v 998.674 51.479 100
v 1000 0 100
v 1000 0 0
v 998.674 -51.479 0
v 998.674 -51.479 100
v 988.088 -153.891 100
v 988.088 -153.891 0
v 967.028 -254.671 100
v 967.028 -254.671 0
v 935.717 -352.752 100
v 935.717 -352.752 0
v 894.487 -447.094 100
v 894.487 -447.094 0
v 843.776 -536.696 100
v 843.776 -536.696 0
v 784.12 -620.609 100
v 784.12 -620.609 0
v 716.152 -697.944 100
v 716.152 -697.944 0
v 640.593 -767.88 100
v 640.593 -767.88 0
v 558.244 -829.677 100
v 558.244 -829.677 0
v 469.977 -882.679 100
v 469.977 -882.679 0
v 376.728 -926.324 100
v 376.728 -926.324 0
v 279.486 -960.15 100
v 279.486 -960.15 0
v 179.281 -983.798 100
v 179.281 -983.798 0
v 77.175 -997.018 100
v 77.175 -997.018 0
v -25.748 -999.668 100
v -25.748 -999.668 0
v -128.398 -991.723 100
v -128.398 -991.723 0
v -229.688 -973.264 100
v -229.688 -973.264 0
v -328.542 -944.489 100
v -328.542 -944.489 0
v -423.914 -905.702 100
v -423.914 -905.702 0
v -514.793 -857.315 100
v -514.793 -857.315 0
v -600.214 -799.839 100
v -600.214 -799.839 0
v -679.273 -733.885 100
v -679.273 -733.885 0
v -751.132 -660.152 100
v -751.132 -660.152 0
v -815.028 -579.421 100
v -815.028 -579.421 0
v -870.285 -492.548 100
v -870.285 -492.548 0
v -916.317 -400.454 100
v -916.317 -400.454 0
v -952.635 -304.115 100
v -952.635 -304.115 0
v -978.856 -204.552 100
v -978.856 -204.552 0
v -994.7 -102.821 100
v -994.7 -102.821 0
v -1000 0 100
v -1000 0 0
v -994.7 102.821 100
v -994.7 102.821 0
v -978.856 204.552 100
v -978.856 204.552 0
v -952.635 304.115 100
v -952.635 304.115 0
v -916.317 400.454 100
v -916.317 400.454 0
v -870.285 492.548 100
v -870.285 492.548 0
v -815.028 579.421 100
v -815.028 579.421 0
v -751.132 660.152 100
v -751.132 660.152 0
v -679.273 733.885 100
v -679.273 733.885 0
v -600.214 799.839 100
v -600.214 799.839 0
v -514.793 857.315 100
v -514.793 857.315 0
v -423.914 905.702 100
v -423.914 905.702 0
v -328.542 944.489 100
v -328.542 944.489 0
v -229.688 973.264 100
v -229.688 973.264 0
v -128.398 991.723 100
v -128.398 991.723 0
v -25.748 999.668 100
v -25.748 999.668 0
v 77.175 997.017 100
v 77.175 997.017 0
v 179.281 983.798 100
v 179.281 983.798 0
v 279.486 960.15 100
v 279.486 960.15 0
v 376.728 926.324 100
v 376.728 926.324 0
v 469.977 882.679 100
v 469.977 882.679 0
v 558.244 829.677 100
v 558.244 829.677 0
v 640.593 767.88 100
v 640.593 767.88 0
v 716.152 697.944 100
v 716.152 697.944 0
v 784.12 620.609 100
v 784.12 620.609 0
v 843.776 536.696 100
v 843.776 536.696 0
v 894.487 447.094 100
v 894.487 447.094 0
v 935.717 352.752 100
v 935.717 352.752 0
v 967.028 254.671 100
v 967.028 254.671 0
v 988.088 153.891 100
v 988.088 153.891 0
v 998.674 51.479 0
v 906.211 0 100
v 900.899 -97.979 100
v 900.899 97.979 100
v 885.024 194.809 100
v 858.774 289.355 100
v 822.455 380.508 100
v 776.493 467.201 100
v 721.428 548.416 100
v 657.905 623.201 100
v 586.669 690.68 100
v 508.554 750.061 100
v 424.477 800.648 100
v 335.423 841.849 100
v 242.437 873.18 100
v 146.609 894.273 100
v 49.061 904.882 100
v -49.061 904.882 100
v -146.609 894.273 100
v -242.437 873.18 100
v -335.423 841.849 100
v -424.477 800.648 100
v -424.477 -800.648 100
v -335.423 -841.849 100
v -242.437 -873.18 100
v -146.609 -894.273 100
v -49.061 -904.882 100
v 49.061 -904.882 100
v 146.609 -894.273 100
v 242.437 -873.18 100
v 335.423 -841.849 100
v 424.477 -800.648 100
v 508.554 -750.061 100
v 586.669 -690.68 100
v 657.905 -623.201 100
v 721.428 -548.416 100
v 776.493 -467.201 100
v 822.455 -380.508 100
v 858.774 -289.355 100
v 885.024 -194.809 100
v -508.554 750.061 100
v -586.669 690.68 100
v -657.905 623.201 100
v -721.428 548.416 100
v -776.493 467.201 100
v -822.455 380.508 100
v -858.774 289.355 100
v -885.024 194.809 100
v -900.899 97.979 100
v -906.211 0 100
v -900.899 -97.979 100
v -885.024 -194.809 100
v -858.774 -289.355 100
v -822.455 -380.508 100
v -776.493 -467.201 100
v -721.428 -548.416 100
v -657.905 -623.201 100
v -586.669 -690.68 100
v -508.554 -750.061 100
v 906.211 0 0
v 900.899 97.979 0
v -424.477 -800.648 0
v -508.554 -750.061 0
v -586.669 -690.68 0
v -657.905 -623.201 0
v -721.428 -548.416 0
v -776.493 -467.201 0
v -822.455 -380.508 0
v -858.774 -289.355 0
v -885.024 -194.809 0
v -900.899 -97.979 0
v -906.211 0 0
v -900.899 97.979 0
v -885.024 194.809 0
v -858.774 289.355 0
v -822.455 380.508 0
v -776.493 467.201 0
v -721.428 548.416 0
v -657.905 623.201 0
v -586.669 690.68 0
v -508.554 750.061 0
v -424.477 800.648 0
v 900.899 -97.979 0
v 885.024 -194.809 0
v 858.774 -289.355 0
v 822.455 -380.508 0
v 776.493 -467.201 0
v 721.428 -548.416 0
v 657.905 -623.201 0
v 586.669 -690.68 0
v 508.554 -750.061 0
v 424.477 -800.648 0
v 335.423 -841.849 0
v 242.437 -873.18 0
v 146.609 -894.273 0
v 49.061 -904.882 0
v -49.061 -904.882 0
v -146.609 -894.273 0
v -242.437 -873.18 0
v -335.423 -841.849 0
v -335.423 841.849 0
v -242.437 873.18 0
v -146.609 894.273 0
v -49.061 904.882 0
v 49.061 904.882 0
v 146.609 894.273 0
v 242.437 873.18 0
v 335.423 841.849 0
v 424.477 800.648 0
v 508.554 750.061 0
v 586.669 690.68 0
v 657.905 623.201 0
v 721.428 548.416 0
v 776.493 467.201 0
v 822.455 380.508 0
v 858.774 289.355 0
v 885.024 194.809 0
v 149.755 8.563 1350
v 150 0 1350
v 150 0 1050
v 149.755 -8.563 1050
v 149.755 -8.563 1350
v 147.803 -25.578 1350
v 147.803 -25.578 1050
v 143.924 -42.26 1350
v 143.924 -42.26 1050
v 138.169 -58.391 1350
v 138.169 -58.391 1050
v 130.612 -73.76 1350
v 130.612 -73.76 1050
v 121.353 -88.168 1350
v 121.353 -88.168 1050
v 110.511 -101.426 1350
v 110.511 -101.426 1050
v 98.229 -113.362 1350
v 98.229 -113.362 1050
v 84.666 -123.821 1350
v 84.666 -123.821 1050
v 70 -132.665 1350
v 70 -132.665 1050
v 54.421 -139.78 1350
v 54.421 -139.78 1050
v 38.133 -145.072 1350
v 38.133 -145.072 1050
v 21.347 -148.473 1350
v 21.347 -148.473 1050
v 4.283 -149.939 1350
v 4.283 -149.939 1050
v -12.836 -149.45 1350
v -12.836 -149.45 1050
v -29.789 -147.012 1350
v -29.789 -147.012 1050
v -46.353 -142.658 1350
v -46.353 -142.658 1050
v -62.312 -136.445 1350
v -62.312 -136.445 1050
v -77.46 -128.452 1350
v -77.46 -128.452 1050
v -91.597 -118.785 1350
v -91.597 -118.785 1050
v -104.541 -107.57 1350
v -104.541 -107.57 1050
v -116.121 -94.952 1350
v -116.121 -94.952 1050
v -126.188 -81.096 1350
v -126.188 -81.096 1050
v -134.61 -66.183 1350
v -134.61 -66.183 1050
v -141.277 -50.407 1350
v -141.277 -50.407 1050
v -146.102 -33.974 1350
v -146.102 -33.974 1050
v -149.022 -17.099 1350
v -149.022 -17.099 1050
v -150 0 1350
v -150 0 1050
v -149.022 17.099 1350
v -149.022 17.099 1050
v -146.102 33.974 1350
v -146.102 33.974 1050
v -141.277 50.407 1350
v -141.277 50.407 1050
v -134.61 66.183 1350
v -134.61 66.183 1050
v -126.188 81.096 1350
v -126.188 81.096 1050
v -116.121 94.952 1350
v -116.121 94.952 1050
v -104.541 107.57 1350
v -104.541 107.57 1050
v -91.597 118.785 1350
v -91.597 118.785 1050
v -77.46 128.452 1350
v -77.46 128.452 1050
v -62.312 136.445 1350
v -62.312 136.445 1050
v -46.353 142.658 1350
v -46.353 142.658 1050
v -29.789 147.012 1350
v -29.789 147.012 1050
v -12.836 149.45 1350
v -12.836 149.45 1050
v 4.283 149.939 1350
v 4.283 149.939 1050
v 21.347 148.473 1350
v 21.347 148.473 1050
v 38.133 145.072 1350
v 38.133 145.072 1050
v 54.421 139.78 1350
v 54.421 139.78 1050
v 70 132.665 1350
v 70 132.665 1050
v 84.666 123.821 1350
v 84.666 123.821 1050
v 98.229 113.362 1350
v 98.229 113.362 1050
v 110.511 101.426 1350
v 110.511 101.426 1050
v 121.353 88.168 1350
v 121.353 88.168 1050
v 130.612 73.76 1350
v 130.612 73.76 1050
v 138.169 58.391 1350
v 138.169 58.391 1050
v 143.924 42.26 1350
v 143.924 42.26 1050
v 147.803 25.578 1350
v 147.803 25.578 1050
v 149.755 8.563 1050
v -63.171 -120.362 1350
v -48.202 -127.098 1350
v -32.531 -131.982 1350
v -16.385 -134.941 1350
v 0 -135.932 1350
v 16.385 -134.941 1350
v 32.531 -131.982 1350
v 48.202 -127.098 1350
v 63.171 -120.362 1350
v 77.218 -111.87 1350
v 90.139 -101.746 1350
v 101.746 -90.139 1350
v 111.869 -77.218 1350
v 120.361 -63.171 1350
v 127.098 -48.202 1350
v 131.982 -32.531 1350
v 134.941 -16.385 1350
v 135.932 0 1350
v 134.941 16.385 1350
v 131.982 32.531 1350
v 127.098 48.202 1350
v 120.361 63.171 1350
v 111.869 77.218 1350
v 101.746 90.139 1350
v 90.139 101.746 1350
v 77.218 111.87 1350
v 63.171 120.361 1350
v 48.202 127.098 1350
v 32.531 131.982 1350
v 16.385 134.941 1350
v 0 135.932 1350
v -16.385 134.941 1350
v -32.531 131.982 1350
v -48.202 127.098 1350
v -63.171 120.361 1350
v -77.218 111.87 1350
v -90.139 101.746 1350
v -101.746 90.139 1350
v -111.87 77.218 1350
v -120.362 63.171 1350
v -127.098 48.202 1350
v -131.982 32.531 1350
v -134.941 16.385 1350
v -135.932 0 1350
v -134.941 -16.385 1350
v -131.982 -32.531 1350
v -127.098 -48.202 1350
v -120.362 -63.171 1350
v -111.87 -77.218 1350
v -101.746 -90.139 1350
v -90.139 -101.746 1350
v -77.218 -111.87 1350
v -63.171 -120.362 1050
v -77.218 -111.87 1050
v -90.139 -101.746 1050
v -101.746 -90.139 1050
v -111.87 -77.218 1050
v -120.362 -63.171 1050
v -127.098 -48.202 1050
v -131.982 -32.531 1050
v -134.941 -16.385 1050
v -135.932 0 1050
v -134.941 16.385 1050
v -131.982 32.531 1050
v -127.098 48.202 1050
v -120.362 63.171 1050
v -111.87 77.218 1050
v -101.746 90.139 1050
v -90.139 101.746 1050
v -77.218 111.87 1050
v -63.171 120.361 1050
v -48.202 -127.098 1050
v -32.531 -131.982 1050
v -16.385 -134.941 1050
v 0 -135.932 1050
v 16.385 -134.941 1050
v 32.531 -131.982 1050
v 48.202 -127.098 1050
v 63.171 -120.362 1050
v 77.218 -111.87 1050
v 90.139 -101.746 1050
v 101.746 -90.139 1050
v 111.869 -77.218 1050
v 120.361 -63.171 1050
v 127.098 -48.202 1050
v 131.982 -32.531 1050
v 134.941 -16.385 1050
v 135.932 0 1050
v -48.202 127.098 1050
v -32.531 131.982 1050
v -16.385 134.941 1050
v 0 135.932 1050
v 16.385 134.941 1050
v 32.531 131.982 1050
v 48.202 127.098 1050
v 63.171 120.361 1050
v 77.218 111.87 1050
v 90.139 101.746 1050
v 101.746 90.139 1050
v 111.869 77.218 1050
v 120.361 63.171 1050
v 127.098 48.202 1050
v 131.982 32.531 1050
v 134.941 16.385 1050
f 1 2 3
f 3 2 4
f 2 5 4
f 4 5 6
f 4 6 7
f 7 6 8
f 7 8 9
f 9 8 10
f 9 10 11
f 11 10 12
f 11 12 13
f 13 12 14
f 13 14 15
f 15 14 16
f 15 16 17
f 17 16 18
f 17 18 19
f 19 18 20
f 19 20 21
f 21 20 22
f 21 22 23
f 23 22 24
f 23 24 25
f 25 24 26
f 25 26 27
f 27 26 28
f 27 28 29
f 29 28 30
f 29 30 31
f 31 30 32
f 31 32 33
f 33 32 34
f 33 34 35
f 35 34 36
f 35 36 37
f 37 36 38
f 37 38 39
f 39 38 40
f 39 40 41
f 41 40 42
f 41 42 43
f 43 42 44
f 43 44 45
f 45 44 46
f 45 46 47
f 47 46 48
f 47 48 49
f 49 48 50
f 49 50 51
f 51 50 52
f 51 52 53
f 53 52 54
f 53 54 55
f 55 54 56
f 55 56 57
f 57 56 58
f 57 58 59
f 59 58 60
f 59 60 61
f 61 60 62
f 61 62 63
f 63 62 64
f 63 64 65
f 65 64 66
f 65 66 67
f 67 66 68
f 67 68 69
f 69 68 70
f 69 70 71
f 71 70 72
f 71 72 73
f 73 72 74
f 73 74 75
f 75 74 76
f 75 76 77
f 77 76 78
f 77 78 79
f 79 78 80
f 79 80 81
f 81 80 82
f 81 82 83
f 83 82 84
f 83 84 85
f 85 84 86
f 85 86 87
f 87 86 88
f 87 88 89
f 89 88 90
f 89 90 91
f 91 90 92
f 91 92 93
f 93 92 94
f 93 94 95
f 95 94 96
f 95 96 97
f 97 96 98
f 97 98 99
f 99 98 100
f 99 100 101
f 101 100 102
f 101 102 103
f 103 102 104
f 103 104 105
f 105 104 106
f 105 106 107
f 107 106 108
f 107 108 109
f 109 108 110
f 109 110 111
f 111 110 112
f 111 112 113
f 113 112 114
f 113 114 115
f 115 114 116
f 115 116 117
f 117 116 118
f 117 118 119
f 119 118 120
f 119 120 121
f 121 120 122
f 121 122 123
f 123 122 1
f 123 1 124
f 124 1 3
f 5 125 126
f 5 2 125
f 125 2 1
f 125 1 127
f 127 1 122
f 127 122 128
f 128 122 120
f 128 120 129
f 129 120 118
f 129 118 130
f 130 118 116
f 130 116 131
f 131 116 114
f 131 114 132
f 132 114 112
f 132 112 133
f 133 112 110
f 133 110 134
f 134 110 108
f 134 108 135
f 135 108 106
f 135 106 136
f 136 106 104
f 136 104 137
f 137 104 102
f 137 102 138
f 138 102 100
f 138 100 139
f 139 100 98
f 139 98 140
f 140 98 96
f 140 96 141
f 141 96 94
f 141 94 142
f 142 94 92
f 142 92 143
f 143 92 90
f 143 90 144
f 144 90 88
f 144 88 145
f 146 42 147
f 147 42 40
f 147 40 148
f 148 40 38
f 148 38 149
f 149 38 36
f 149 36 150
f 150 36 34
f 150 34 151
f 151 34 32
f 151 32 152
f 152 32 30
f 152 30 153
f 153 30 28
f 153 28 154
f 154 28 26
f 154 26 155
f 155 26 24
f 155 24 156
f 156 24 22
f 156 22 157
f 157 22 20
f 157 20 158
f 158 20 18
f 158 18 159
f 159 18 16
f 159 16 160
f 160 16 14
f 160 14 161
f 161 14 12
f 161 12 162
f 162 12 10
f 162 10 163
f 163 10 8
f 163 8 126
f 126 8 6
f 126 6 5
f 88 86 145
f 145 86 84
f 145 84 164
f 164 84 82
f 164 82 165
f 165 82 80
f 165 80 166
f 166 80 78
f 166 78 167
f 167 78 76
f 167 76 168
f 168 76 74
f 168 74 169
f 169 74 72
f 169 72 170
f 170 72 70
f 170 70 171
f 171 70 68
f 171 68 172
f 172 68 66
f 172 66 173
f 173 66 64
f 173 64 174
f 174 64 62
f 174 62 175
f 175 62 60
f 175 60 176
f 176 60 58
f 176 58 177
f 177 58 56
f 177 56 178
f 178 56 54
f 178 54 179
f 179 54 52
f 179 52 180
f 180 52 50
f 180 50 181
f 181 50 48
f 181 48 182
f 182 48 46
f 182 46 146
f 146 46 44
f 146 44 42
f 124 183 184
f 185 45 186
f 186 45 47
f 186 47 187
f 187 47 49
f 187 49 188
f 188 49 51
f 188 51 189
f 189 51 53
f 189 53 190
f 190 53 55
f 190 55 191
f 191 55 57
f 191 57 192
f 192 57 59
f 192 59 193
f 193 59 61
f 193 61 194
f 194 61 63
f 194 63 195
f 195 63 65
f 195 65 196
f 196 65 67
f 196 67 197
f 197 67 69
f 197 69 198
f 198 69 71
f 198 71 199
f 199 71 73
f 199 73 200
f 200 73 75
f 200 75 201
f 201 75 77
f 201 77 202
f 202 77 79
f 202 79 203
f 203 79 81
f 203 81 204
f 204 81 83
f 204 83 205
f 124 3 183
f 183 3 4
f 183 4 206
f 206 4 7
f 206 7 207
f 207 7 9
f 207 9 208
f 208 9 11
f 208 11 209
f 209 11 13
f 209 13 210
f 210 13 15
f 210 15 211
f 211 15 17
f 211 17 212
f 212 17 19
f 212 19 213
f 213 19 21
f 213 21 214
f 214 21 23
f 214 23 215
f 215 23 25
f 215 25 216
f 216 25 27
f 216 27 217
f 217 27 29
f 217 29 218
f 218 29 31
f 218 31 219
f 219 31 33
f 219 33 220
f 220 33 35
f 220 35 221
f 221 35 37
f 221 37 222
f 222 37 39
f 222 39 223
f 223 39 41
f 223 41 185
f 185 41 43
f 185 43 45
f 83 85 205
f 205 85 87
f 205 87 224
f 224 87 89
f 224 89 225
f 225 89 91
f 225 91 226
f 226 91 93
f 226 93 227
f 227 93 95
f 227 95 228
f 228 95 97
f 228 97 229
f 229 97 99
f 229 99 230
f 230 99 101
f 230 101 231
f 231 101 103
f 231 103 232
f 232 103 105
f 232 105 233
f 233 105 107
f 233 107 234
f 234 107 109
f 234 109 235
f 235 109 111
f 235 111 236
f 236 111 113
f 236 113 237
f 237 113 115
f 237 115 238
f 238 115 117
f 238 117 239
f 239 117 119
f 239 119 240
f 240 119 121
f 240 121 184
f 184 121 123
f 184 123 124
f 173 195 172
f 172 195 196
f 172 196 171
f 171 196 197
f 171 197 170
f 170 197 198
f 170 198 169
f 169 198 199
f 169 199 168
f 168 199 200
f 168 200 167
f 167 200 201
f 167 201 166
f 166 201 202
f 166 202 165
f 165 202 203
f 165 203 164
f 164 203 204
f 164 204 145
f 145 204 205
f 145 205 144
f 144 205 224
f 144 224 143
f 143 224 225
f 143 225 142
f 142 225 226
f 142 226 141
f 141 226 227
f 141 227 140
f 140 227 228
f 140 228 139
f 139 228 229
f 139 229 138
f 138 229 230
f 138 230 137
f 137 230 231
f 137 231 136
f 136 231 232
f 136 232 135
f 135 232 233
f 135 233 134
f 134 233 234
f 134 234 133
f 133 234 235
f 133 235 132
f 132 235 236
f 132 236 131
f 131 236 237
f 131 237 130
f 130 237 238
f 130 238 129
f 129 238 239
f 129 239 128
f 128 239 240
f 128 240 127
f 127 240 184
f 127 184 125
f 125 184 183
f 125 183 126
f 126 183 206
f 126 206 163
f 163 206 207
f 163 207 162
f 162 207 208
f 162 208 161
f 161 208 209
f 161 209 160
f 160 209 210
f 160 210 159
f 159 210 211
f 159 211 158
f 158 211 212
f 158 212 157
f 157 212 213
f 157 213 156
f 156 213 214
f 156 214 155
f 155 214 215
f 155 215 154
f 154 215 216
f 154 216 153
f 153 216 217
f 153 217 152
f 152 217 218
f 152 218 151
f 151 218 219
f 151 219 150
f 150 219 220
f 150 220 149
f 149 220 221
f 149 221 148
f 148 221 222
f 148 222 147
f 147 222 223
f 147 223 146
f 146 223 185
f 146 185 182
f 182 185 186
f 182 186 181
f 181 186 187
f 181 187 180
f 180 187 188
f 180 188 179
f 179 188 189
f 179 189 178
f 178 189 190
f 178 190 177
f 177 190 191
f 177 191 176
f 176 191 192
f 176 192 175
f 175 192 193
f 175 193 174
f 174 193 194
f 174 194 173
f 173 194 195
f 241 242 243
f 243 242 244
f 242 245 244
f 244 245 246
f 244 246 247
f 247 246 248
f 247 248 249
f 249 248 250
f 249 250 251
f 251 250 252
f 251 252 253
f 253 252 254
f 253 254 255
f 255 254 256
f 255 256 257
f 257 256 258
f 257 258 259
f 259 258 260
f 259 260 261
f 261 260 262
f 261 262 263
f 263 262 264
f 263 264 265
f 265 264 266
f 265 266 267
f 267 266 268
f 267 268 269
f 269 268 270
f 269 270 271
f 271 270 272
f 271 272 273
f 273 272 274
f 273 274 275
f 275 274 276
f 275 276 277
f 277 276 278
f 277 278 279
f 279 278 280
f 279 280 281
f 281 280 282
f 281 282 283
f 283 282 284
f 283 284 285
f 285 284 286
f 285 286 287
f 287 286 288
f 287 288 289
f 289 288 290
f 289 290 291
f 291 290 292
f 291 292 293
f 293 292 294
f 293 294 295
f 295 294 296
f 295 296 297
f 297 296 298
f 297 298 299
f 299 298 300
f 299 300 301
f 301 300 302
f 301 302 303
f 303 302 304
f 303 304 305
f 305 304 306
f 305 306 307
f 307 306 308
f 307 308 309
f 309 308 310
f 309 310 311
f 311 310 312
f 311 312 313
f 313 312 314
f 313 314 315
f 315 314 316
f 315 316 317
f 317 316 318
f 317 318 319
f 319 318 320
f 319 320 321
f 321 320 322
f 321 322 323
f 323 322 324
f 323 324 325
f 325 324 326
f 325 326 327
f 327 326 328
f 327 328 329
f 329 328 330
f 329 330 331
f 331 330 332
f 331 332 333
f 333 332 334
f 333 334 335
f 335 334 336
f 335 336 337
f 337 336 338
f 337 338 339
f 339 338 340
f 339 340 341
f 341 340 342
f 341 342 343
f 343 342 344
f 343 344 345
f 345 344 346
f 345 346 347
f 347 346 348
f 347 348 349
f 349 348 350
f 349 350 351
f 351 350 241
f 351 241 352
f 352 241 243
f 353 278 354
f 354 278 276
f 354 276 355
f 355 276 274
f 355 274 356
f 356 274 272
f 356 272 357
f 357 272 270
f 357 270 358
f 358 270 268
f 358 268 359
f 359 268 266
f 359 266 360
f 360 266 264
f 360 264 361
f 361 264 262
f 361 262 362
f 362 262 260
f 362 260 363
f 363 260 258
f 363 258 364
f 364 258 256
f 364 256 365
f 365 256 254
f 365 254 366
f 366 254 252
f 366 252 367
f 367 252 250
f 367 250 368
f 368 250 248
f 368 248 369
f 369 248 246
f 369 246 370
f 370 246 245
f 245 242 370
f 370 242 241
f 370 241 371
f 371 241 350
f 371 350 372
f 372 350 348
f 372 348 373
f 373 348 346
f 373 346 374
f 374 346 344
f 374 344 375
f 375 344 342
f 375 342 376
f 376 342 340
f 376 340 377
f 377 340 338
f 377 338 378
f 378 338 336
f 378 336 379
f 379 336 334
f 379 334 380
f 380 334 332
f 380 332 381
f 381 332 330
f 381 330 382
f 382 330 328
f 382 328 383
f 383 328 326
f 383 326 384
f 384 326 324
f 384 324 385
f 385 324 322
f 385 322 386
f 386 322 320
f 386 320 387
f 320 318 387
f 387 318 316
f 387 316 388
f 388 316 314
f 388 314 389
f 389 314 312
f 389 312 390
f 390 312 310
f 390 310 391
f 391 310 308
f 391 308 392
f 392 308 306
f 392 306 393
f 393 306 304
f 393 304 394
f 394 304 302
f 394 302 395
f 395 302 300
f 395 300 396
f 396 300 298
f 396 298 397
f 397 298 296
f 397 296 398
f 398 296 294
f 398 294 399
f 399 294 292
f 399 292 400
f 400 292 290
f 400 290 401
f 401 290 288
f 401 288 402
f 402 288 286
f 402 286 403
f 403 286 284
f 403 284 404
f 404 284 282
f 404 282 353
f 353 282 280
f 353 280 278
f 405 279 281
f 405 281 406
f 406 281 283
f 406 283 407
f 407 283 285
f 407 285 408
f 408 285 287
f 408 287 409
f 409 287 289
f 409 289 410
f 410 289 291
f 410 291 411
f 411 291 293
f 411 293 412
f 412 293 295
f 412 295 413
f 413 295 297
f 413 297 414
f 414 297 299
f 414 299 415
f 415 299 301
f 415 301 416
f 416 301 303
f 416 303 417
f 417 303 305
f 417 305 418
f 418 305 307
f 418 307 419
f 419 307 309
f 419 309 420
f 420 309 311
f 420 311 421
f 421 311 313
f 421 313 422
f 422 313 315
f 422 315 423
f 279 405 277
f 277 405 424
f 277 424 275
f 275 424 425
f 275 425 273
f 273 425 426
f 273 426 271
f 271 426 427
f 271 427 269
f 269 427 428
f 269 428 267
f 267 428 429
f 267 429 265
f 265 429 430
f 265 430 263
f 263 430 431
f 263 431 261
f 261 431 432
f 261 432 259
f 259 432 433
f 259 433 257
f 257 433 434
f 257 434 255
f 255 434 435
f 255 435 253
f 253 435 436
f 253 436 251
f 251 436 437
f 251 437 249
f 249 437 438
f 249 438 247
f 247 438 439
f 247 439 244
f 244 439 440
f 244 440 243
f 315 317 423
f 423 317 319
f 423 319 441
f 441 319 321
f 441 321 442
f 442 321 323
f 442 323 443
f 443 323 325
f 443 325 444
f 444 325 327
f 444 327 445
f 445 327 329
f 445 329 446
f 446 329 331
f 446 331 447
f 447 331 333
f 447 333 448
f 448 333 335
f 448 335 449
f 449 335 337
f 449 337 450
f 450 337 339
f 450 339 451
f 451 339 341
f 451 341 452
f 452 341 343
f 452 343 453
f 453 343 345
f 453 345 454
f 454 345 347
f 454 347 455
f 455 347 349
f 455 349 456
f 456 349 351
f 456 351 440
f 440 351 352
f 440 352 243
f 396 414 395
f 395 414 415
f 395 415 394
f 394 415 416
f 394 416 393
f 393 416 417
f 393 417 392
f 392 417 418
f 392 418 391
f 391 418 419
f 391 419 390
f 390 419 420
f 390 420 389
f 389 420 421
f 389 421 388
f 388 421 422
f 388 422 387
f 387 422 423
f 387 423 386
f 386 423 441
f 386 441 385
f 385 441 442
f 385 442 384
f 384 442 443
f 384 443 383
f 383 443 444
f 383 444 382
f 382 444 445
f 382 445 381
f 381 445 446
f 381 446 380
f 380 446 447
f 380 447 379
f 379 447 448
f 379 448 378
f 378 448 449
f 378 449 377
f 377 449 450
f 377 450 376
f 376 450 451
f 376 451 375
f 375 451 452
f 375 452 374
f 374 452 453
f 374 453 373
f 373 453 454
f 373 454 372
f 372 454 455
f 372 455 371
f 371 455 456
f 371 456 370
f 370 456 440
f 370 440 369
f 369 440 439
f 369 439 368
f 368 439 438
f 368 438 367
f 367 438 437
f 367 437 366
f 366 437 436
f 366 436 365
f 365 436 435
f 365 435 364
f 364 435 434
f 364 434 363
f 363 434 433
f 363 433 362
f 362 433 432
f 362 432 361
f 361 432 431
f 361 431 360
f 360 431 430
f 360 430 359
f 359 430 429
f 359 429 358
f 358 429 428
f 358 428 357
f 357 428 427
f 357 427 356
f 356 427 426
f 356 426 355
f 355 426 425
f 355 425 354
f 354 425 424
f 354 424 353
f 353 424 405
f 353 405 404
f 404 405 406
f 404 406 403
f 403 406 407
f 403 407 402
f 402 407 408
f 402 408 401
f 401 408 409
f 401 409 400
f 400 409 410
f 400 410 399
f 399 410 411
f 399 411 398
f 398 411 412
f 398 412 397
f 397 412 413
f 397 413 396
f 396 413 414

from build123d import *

# Parameters (mm, degrees)
SKETCH3_R           = 1000
BOSS_EXTRUDE2_DEPTH = 2000
SKETCH8_R           = 1000
BOSS_EXTRUDE7_DEPTH = 100
SKETCH9_R           = 906.211014964
CUT_EXTRUDE3_DEPTH  = 6000
SCALE5_SCALE        = 0.15


with BuildPart() as part:
    # Sketch3 → Boss-Extrude2 (new body)
    with BuildSketch(Plane.XY.offset(200)):
        Circle(SKETCH3_R)
    extrude(amount=BOSS_EXTRUDE2_DEPTH)


with BuildPart() as body_2:
    # Sketch8 → Boss-Extrude7 (new body)
    with BuildSketch(Plane.XY):
        Circle(SKETCH8_R)
    extrude(amount=BOSS_EXTRUDE7_DEPTH)


with BuildPart() as cut_extrude3_tool:
    # Sketch9 → Cut-Extrude3 (new body)
    with BuildSketch(Plane.XY):
        Circle(SKETCH9_R)
    extrude(amount=CUT_EXTRUDE3_DEPTH)


with BuildPart() as part_1:
    add(part.part)

    # Cut-Extrude3: cut by cut_extrude3_tool
    add(cut_extrude3_tool.part, mode=Mode.SUBTRACT)


with BuildPart() as body_2_1:
    add(body_2.part)

    # Cut-Extrude3: cut by cut_extrude3_tool
    add(cut_extrude3_tool.part, mode=Mode.SUBTRACT)


with BuildPart() as part_2:
    # Scale5: scaled about (0, 0, 1200)
    add(part_1.part.scale(SCALE5_SCALE).moved(Location((0, 0, 1020))))


solid = Compound([body_2_1.part, part_2.part])
